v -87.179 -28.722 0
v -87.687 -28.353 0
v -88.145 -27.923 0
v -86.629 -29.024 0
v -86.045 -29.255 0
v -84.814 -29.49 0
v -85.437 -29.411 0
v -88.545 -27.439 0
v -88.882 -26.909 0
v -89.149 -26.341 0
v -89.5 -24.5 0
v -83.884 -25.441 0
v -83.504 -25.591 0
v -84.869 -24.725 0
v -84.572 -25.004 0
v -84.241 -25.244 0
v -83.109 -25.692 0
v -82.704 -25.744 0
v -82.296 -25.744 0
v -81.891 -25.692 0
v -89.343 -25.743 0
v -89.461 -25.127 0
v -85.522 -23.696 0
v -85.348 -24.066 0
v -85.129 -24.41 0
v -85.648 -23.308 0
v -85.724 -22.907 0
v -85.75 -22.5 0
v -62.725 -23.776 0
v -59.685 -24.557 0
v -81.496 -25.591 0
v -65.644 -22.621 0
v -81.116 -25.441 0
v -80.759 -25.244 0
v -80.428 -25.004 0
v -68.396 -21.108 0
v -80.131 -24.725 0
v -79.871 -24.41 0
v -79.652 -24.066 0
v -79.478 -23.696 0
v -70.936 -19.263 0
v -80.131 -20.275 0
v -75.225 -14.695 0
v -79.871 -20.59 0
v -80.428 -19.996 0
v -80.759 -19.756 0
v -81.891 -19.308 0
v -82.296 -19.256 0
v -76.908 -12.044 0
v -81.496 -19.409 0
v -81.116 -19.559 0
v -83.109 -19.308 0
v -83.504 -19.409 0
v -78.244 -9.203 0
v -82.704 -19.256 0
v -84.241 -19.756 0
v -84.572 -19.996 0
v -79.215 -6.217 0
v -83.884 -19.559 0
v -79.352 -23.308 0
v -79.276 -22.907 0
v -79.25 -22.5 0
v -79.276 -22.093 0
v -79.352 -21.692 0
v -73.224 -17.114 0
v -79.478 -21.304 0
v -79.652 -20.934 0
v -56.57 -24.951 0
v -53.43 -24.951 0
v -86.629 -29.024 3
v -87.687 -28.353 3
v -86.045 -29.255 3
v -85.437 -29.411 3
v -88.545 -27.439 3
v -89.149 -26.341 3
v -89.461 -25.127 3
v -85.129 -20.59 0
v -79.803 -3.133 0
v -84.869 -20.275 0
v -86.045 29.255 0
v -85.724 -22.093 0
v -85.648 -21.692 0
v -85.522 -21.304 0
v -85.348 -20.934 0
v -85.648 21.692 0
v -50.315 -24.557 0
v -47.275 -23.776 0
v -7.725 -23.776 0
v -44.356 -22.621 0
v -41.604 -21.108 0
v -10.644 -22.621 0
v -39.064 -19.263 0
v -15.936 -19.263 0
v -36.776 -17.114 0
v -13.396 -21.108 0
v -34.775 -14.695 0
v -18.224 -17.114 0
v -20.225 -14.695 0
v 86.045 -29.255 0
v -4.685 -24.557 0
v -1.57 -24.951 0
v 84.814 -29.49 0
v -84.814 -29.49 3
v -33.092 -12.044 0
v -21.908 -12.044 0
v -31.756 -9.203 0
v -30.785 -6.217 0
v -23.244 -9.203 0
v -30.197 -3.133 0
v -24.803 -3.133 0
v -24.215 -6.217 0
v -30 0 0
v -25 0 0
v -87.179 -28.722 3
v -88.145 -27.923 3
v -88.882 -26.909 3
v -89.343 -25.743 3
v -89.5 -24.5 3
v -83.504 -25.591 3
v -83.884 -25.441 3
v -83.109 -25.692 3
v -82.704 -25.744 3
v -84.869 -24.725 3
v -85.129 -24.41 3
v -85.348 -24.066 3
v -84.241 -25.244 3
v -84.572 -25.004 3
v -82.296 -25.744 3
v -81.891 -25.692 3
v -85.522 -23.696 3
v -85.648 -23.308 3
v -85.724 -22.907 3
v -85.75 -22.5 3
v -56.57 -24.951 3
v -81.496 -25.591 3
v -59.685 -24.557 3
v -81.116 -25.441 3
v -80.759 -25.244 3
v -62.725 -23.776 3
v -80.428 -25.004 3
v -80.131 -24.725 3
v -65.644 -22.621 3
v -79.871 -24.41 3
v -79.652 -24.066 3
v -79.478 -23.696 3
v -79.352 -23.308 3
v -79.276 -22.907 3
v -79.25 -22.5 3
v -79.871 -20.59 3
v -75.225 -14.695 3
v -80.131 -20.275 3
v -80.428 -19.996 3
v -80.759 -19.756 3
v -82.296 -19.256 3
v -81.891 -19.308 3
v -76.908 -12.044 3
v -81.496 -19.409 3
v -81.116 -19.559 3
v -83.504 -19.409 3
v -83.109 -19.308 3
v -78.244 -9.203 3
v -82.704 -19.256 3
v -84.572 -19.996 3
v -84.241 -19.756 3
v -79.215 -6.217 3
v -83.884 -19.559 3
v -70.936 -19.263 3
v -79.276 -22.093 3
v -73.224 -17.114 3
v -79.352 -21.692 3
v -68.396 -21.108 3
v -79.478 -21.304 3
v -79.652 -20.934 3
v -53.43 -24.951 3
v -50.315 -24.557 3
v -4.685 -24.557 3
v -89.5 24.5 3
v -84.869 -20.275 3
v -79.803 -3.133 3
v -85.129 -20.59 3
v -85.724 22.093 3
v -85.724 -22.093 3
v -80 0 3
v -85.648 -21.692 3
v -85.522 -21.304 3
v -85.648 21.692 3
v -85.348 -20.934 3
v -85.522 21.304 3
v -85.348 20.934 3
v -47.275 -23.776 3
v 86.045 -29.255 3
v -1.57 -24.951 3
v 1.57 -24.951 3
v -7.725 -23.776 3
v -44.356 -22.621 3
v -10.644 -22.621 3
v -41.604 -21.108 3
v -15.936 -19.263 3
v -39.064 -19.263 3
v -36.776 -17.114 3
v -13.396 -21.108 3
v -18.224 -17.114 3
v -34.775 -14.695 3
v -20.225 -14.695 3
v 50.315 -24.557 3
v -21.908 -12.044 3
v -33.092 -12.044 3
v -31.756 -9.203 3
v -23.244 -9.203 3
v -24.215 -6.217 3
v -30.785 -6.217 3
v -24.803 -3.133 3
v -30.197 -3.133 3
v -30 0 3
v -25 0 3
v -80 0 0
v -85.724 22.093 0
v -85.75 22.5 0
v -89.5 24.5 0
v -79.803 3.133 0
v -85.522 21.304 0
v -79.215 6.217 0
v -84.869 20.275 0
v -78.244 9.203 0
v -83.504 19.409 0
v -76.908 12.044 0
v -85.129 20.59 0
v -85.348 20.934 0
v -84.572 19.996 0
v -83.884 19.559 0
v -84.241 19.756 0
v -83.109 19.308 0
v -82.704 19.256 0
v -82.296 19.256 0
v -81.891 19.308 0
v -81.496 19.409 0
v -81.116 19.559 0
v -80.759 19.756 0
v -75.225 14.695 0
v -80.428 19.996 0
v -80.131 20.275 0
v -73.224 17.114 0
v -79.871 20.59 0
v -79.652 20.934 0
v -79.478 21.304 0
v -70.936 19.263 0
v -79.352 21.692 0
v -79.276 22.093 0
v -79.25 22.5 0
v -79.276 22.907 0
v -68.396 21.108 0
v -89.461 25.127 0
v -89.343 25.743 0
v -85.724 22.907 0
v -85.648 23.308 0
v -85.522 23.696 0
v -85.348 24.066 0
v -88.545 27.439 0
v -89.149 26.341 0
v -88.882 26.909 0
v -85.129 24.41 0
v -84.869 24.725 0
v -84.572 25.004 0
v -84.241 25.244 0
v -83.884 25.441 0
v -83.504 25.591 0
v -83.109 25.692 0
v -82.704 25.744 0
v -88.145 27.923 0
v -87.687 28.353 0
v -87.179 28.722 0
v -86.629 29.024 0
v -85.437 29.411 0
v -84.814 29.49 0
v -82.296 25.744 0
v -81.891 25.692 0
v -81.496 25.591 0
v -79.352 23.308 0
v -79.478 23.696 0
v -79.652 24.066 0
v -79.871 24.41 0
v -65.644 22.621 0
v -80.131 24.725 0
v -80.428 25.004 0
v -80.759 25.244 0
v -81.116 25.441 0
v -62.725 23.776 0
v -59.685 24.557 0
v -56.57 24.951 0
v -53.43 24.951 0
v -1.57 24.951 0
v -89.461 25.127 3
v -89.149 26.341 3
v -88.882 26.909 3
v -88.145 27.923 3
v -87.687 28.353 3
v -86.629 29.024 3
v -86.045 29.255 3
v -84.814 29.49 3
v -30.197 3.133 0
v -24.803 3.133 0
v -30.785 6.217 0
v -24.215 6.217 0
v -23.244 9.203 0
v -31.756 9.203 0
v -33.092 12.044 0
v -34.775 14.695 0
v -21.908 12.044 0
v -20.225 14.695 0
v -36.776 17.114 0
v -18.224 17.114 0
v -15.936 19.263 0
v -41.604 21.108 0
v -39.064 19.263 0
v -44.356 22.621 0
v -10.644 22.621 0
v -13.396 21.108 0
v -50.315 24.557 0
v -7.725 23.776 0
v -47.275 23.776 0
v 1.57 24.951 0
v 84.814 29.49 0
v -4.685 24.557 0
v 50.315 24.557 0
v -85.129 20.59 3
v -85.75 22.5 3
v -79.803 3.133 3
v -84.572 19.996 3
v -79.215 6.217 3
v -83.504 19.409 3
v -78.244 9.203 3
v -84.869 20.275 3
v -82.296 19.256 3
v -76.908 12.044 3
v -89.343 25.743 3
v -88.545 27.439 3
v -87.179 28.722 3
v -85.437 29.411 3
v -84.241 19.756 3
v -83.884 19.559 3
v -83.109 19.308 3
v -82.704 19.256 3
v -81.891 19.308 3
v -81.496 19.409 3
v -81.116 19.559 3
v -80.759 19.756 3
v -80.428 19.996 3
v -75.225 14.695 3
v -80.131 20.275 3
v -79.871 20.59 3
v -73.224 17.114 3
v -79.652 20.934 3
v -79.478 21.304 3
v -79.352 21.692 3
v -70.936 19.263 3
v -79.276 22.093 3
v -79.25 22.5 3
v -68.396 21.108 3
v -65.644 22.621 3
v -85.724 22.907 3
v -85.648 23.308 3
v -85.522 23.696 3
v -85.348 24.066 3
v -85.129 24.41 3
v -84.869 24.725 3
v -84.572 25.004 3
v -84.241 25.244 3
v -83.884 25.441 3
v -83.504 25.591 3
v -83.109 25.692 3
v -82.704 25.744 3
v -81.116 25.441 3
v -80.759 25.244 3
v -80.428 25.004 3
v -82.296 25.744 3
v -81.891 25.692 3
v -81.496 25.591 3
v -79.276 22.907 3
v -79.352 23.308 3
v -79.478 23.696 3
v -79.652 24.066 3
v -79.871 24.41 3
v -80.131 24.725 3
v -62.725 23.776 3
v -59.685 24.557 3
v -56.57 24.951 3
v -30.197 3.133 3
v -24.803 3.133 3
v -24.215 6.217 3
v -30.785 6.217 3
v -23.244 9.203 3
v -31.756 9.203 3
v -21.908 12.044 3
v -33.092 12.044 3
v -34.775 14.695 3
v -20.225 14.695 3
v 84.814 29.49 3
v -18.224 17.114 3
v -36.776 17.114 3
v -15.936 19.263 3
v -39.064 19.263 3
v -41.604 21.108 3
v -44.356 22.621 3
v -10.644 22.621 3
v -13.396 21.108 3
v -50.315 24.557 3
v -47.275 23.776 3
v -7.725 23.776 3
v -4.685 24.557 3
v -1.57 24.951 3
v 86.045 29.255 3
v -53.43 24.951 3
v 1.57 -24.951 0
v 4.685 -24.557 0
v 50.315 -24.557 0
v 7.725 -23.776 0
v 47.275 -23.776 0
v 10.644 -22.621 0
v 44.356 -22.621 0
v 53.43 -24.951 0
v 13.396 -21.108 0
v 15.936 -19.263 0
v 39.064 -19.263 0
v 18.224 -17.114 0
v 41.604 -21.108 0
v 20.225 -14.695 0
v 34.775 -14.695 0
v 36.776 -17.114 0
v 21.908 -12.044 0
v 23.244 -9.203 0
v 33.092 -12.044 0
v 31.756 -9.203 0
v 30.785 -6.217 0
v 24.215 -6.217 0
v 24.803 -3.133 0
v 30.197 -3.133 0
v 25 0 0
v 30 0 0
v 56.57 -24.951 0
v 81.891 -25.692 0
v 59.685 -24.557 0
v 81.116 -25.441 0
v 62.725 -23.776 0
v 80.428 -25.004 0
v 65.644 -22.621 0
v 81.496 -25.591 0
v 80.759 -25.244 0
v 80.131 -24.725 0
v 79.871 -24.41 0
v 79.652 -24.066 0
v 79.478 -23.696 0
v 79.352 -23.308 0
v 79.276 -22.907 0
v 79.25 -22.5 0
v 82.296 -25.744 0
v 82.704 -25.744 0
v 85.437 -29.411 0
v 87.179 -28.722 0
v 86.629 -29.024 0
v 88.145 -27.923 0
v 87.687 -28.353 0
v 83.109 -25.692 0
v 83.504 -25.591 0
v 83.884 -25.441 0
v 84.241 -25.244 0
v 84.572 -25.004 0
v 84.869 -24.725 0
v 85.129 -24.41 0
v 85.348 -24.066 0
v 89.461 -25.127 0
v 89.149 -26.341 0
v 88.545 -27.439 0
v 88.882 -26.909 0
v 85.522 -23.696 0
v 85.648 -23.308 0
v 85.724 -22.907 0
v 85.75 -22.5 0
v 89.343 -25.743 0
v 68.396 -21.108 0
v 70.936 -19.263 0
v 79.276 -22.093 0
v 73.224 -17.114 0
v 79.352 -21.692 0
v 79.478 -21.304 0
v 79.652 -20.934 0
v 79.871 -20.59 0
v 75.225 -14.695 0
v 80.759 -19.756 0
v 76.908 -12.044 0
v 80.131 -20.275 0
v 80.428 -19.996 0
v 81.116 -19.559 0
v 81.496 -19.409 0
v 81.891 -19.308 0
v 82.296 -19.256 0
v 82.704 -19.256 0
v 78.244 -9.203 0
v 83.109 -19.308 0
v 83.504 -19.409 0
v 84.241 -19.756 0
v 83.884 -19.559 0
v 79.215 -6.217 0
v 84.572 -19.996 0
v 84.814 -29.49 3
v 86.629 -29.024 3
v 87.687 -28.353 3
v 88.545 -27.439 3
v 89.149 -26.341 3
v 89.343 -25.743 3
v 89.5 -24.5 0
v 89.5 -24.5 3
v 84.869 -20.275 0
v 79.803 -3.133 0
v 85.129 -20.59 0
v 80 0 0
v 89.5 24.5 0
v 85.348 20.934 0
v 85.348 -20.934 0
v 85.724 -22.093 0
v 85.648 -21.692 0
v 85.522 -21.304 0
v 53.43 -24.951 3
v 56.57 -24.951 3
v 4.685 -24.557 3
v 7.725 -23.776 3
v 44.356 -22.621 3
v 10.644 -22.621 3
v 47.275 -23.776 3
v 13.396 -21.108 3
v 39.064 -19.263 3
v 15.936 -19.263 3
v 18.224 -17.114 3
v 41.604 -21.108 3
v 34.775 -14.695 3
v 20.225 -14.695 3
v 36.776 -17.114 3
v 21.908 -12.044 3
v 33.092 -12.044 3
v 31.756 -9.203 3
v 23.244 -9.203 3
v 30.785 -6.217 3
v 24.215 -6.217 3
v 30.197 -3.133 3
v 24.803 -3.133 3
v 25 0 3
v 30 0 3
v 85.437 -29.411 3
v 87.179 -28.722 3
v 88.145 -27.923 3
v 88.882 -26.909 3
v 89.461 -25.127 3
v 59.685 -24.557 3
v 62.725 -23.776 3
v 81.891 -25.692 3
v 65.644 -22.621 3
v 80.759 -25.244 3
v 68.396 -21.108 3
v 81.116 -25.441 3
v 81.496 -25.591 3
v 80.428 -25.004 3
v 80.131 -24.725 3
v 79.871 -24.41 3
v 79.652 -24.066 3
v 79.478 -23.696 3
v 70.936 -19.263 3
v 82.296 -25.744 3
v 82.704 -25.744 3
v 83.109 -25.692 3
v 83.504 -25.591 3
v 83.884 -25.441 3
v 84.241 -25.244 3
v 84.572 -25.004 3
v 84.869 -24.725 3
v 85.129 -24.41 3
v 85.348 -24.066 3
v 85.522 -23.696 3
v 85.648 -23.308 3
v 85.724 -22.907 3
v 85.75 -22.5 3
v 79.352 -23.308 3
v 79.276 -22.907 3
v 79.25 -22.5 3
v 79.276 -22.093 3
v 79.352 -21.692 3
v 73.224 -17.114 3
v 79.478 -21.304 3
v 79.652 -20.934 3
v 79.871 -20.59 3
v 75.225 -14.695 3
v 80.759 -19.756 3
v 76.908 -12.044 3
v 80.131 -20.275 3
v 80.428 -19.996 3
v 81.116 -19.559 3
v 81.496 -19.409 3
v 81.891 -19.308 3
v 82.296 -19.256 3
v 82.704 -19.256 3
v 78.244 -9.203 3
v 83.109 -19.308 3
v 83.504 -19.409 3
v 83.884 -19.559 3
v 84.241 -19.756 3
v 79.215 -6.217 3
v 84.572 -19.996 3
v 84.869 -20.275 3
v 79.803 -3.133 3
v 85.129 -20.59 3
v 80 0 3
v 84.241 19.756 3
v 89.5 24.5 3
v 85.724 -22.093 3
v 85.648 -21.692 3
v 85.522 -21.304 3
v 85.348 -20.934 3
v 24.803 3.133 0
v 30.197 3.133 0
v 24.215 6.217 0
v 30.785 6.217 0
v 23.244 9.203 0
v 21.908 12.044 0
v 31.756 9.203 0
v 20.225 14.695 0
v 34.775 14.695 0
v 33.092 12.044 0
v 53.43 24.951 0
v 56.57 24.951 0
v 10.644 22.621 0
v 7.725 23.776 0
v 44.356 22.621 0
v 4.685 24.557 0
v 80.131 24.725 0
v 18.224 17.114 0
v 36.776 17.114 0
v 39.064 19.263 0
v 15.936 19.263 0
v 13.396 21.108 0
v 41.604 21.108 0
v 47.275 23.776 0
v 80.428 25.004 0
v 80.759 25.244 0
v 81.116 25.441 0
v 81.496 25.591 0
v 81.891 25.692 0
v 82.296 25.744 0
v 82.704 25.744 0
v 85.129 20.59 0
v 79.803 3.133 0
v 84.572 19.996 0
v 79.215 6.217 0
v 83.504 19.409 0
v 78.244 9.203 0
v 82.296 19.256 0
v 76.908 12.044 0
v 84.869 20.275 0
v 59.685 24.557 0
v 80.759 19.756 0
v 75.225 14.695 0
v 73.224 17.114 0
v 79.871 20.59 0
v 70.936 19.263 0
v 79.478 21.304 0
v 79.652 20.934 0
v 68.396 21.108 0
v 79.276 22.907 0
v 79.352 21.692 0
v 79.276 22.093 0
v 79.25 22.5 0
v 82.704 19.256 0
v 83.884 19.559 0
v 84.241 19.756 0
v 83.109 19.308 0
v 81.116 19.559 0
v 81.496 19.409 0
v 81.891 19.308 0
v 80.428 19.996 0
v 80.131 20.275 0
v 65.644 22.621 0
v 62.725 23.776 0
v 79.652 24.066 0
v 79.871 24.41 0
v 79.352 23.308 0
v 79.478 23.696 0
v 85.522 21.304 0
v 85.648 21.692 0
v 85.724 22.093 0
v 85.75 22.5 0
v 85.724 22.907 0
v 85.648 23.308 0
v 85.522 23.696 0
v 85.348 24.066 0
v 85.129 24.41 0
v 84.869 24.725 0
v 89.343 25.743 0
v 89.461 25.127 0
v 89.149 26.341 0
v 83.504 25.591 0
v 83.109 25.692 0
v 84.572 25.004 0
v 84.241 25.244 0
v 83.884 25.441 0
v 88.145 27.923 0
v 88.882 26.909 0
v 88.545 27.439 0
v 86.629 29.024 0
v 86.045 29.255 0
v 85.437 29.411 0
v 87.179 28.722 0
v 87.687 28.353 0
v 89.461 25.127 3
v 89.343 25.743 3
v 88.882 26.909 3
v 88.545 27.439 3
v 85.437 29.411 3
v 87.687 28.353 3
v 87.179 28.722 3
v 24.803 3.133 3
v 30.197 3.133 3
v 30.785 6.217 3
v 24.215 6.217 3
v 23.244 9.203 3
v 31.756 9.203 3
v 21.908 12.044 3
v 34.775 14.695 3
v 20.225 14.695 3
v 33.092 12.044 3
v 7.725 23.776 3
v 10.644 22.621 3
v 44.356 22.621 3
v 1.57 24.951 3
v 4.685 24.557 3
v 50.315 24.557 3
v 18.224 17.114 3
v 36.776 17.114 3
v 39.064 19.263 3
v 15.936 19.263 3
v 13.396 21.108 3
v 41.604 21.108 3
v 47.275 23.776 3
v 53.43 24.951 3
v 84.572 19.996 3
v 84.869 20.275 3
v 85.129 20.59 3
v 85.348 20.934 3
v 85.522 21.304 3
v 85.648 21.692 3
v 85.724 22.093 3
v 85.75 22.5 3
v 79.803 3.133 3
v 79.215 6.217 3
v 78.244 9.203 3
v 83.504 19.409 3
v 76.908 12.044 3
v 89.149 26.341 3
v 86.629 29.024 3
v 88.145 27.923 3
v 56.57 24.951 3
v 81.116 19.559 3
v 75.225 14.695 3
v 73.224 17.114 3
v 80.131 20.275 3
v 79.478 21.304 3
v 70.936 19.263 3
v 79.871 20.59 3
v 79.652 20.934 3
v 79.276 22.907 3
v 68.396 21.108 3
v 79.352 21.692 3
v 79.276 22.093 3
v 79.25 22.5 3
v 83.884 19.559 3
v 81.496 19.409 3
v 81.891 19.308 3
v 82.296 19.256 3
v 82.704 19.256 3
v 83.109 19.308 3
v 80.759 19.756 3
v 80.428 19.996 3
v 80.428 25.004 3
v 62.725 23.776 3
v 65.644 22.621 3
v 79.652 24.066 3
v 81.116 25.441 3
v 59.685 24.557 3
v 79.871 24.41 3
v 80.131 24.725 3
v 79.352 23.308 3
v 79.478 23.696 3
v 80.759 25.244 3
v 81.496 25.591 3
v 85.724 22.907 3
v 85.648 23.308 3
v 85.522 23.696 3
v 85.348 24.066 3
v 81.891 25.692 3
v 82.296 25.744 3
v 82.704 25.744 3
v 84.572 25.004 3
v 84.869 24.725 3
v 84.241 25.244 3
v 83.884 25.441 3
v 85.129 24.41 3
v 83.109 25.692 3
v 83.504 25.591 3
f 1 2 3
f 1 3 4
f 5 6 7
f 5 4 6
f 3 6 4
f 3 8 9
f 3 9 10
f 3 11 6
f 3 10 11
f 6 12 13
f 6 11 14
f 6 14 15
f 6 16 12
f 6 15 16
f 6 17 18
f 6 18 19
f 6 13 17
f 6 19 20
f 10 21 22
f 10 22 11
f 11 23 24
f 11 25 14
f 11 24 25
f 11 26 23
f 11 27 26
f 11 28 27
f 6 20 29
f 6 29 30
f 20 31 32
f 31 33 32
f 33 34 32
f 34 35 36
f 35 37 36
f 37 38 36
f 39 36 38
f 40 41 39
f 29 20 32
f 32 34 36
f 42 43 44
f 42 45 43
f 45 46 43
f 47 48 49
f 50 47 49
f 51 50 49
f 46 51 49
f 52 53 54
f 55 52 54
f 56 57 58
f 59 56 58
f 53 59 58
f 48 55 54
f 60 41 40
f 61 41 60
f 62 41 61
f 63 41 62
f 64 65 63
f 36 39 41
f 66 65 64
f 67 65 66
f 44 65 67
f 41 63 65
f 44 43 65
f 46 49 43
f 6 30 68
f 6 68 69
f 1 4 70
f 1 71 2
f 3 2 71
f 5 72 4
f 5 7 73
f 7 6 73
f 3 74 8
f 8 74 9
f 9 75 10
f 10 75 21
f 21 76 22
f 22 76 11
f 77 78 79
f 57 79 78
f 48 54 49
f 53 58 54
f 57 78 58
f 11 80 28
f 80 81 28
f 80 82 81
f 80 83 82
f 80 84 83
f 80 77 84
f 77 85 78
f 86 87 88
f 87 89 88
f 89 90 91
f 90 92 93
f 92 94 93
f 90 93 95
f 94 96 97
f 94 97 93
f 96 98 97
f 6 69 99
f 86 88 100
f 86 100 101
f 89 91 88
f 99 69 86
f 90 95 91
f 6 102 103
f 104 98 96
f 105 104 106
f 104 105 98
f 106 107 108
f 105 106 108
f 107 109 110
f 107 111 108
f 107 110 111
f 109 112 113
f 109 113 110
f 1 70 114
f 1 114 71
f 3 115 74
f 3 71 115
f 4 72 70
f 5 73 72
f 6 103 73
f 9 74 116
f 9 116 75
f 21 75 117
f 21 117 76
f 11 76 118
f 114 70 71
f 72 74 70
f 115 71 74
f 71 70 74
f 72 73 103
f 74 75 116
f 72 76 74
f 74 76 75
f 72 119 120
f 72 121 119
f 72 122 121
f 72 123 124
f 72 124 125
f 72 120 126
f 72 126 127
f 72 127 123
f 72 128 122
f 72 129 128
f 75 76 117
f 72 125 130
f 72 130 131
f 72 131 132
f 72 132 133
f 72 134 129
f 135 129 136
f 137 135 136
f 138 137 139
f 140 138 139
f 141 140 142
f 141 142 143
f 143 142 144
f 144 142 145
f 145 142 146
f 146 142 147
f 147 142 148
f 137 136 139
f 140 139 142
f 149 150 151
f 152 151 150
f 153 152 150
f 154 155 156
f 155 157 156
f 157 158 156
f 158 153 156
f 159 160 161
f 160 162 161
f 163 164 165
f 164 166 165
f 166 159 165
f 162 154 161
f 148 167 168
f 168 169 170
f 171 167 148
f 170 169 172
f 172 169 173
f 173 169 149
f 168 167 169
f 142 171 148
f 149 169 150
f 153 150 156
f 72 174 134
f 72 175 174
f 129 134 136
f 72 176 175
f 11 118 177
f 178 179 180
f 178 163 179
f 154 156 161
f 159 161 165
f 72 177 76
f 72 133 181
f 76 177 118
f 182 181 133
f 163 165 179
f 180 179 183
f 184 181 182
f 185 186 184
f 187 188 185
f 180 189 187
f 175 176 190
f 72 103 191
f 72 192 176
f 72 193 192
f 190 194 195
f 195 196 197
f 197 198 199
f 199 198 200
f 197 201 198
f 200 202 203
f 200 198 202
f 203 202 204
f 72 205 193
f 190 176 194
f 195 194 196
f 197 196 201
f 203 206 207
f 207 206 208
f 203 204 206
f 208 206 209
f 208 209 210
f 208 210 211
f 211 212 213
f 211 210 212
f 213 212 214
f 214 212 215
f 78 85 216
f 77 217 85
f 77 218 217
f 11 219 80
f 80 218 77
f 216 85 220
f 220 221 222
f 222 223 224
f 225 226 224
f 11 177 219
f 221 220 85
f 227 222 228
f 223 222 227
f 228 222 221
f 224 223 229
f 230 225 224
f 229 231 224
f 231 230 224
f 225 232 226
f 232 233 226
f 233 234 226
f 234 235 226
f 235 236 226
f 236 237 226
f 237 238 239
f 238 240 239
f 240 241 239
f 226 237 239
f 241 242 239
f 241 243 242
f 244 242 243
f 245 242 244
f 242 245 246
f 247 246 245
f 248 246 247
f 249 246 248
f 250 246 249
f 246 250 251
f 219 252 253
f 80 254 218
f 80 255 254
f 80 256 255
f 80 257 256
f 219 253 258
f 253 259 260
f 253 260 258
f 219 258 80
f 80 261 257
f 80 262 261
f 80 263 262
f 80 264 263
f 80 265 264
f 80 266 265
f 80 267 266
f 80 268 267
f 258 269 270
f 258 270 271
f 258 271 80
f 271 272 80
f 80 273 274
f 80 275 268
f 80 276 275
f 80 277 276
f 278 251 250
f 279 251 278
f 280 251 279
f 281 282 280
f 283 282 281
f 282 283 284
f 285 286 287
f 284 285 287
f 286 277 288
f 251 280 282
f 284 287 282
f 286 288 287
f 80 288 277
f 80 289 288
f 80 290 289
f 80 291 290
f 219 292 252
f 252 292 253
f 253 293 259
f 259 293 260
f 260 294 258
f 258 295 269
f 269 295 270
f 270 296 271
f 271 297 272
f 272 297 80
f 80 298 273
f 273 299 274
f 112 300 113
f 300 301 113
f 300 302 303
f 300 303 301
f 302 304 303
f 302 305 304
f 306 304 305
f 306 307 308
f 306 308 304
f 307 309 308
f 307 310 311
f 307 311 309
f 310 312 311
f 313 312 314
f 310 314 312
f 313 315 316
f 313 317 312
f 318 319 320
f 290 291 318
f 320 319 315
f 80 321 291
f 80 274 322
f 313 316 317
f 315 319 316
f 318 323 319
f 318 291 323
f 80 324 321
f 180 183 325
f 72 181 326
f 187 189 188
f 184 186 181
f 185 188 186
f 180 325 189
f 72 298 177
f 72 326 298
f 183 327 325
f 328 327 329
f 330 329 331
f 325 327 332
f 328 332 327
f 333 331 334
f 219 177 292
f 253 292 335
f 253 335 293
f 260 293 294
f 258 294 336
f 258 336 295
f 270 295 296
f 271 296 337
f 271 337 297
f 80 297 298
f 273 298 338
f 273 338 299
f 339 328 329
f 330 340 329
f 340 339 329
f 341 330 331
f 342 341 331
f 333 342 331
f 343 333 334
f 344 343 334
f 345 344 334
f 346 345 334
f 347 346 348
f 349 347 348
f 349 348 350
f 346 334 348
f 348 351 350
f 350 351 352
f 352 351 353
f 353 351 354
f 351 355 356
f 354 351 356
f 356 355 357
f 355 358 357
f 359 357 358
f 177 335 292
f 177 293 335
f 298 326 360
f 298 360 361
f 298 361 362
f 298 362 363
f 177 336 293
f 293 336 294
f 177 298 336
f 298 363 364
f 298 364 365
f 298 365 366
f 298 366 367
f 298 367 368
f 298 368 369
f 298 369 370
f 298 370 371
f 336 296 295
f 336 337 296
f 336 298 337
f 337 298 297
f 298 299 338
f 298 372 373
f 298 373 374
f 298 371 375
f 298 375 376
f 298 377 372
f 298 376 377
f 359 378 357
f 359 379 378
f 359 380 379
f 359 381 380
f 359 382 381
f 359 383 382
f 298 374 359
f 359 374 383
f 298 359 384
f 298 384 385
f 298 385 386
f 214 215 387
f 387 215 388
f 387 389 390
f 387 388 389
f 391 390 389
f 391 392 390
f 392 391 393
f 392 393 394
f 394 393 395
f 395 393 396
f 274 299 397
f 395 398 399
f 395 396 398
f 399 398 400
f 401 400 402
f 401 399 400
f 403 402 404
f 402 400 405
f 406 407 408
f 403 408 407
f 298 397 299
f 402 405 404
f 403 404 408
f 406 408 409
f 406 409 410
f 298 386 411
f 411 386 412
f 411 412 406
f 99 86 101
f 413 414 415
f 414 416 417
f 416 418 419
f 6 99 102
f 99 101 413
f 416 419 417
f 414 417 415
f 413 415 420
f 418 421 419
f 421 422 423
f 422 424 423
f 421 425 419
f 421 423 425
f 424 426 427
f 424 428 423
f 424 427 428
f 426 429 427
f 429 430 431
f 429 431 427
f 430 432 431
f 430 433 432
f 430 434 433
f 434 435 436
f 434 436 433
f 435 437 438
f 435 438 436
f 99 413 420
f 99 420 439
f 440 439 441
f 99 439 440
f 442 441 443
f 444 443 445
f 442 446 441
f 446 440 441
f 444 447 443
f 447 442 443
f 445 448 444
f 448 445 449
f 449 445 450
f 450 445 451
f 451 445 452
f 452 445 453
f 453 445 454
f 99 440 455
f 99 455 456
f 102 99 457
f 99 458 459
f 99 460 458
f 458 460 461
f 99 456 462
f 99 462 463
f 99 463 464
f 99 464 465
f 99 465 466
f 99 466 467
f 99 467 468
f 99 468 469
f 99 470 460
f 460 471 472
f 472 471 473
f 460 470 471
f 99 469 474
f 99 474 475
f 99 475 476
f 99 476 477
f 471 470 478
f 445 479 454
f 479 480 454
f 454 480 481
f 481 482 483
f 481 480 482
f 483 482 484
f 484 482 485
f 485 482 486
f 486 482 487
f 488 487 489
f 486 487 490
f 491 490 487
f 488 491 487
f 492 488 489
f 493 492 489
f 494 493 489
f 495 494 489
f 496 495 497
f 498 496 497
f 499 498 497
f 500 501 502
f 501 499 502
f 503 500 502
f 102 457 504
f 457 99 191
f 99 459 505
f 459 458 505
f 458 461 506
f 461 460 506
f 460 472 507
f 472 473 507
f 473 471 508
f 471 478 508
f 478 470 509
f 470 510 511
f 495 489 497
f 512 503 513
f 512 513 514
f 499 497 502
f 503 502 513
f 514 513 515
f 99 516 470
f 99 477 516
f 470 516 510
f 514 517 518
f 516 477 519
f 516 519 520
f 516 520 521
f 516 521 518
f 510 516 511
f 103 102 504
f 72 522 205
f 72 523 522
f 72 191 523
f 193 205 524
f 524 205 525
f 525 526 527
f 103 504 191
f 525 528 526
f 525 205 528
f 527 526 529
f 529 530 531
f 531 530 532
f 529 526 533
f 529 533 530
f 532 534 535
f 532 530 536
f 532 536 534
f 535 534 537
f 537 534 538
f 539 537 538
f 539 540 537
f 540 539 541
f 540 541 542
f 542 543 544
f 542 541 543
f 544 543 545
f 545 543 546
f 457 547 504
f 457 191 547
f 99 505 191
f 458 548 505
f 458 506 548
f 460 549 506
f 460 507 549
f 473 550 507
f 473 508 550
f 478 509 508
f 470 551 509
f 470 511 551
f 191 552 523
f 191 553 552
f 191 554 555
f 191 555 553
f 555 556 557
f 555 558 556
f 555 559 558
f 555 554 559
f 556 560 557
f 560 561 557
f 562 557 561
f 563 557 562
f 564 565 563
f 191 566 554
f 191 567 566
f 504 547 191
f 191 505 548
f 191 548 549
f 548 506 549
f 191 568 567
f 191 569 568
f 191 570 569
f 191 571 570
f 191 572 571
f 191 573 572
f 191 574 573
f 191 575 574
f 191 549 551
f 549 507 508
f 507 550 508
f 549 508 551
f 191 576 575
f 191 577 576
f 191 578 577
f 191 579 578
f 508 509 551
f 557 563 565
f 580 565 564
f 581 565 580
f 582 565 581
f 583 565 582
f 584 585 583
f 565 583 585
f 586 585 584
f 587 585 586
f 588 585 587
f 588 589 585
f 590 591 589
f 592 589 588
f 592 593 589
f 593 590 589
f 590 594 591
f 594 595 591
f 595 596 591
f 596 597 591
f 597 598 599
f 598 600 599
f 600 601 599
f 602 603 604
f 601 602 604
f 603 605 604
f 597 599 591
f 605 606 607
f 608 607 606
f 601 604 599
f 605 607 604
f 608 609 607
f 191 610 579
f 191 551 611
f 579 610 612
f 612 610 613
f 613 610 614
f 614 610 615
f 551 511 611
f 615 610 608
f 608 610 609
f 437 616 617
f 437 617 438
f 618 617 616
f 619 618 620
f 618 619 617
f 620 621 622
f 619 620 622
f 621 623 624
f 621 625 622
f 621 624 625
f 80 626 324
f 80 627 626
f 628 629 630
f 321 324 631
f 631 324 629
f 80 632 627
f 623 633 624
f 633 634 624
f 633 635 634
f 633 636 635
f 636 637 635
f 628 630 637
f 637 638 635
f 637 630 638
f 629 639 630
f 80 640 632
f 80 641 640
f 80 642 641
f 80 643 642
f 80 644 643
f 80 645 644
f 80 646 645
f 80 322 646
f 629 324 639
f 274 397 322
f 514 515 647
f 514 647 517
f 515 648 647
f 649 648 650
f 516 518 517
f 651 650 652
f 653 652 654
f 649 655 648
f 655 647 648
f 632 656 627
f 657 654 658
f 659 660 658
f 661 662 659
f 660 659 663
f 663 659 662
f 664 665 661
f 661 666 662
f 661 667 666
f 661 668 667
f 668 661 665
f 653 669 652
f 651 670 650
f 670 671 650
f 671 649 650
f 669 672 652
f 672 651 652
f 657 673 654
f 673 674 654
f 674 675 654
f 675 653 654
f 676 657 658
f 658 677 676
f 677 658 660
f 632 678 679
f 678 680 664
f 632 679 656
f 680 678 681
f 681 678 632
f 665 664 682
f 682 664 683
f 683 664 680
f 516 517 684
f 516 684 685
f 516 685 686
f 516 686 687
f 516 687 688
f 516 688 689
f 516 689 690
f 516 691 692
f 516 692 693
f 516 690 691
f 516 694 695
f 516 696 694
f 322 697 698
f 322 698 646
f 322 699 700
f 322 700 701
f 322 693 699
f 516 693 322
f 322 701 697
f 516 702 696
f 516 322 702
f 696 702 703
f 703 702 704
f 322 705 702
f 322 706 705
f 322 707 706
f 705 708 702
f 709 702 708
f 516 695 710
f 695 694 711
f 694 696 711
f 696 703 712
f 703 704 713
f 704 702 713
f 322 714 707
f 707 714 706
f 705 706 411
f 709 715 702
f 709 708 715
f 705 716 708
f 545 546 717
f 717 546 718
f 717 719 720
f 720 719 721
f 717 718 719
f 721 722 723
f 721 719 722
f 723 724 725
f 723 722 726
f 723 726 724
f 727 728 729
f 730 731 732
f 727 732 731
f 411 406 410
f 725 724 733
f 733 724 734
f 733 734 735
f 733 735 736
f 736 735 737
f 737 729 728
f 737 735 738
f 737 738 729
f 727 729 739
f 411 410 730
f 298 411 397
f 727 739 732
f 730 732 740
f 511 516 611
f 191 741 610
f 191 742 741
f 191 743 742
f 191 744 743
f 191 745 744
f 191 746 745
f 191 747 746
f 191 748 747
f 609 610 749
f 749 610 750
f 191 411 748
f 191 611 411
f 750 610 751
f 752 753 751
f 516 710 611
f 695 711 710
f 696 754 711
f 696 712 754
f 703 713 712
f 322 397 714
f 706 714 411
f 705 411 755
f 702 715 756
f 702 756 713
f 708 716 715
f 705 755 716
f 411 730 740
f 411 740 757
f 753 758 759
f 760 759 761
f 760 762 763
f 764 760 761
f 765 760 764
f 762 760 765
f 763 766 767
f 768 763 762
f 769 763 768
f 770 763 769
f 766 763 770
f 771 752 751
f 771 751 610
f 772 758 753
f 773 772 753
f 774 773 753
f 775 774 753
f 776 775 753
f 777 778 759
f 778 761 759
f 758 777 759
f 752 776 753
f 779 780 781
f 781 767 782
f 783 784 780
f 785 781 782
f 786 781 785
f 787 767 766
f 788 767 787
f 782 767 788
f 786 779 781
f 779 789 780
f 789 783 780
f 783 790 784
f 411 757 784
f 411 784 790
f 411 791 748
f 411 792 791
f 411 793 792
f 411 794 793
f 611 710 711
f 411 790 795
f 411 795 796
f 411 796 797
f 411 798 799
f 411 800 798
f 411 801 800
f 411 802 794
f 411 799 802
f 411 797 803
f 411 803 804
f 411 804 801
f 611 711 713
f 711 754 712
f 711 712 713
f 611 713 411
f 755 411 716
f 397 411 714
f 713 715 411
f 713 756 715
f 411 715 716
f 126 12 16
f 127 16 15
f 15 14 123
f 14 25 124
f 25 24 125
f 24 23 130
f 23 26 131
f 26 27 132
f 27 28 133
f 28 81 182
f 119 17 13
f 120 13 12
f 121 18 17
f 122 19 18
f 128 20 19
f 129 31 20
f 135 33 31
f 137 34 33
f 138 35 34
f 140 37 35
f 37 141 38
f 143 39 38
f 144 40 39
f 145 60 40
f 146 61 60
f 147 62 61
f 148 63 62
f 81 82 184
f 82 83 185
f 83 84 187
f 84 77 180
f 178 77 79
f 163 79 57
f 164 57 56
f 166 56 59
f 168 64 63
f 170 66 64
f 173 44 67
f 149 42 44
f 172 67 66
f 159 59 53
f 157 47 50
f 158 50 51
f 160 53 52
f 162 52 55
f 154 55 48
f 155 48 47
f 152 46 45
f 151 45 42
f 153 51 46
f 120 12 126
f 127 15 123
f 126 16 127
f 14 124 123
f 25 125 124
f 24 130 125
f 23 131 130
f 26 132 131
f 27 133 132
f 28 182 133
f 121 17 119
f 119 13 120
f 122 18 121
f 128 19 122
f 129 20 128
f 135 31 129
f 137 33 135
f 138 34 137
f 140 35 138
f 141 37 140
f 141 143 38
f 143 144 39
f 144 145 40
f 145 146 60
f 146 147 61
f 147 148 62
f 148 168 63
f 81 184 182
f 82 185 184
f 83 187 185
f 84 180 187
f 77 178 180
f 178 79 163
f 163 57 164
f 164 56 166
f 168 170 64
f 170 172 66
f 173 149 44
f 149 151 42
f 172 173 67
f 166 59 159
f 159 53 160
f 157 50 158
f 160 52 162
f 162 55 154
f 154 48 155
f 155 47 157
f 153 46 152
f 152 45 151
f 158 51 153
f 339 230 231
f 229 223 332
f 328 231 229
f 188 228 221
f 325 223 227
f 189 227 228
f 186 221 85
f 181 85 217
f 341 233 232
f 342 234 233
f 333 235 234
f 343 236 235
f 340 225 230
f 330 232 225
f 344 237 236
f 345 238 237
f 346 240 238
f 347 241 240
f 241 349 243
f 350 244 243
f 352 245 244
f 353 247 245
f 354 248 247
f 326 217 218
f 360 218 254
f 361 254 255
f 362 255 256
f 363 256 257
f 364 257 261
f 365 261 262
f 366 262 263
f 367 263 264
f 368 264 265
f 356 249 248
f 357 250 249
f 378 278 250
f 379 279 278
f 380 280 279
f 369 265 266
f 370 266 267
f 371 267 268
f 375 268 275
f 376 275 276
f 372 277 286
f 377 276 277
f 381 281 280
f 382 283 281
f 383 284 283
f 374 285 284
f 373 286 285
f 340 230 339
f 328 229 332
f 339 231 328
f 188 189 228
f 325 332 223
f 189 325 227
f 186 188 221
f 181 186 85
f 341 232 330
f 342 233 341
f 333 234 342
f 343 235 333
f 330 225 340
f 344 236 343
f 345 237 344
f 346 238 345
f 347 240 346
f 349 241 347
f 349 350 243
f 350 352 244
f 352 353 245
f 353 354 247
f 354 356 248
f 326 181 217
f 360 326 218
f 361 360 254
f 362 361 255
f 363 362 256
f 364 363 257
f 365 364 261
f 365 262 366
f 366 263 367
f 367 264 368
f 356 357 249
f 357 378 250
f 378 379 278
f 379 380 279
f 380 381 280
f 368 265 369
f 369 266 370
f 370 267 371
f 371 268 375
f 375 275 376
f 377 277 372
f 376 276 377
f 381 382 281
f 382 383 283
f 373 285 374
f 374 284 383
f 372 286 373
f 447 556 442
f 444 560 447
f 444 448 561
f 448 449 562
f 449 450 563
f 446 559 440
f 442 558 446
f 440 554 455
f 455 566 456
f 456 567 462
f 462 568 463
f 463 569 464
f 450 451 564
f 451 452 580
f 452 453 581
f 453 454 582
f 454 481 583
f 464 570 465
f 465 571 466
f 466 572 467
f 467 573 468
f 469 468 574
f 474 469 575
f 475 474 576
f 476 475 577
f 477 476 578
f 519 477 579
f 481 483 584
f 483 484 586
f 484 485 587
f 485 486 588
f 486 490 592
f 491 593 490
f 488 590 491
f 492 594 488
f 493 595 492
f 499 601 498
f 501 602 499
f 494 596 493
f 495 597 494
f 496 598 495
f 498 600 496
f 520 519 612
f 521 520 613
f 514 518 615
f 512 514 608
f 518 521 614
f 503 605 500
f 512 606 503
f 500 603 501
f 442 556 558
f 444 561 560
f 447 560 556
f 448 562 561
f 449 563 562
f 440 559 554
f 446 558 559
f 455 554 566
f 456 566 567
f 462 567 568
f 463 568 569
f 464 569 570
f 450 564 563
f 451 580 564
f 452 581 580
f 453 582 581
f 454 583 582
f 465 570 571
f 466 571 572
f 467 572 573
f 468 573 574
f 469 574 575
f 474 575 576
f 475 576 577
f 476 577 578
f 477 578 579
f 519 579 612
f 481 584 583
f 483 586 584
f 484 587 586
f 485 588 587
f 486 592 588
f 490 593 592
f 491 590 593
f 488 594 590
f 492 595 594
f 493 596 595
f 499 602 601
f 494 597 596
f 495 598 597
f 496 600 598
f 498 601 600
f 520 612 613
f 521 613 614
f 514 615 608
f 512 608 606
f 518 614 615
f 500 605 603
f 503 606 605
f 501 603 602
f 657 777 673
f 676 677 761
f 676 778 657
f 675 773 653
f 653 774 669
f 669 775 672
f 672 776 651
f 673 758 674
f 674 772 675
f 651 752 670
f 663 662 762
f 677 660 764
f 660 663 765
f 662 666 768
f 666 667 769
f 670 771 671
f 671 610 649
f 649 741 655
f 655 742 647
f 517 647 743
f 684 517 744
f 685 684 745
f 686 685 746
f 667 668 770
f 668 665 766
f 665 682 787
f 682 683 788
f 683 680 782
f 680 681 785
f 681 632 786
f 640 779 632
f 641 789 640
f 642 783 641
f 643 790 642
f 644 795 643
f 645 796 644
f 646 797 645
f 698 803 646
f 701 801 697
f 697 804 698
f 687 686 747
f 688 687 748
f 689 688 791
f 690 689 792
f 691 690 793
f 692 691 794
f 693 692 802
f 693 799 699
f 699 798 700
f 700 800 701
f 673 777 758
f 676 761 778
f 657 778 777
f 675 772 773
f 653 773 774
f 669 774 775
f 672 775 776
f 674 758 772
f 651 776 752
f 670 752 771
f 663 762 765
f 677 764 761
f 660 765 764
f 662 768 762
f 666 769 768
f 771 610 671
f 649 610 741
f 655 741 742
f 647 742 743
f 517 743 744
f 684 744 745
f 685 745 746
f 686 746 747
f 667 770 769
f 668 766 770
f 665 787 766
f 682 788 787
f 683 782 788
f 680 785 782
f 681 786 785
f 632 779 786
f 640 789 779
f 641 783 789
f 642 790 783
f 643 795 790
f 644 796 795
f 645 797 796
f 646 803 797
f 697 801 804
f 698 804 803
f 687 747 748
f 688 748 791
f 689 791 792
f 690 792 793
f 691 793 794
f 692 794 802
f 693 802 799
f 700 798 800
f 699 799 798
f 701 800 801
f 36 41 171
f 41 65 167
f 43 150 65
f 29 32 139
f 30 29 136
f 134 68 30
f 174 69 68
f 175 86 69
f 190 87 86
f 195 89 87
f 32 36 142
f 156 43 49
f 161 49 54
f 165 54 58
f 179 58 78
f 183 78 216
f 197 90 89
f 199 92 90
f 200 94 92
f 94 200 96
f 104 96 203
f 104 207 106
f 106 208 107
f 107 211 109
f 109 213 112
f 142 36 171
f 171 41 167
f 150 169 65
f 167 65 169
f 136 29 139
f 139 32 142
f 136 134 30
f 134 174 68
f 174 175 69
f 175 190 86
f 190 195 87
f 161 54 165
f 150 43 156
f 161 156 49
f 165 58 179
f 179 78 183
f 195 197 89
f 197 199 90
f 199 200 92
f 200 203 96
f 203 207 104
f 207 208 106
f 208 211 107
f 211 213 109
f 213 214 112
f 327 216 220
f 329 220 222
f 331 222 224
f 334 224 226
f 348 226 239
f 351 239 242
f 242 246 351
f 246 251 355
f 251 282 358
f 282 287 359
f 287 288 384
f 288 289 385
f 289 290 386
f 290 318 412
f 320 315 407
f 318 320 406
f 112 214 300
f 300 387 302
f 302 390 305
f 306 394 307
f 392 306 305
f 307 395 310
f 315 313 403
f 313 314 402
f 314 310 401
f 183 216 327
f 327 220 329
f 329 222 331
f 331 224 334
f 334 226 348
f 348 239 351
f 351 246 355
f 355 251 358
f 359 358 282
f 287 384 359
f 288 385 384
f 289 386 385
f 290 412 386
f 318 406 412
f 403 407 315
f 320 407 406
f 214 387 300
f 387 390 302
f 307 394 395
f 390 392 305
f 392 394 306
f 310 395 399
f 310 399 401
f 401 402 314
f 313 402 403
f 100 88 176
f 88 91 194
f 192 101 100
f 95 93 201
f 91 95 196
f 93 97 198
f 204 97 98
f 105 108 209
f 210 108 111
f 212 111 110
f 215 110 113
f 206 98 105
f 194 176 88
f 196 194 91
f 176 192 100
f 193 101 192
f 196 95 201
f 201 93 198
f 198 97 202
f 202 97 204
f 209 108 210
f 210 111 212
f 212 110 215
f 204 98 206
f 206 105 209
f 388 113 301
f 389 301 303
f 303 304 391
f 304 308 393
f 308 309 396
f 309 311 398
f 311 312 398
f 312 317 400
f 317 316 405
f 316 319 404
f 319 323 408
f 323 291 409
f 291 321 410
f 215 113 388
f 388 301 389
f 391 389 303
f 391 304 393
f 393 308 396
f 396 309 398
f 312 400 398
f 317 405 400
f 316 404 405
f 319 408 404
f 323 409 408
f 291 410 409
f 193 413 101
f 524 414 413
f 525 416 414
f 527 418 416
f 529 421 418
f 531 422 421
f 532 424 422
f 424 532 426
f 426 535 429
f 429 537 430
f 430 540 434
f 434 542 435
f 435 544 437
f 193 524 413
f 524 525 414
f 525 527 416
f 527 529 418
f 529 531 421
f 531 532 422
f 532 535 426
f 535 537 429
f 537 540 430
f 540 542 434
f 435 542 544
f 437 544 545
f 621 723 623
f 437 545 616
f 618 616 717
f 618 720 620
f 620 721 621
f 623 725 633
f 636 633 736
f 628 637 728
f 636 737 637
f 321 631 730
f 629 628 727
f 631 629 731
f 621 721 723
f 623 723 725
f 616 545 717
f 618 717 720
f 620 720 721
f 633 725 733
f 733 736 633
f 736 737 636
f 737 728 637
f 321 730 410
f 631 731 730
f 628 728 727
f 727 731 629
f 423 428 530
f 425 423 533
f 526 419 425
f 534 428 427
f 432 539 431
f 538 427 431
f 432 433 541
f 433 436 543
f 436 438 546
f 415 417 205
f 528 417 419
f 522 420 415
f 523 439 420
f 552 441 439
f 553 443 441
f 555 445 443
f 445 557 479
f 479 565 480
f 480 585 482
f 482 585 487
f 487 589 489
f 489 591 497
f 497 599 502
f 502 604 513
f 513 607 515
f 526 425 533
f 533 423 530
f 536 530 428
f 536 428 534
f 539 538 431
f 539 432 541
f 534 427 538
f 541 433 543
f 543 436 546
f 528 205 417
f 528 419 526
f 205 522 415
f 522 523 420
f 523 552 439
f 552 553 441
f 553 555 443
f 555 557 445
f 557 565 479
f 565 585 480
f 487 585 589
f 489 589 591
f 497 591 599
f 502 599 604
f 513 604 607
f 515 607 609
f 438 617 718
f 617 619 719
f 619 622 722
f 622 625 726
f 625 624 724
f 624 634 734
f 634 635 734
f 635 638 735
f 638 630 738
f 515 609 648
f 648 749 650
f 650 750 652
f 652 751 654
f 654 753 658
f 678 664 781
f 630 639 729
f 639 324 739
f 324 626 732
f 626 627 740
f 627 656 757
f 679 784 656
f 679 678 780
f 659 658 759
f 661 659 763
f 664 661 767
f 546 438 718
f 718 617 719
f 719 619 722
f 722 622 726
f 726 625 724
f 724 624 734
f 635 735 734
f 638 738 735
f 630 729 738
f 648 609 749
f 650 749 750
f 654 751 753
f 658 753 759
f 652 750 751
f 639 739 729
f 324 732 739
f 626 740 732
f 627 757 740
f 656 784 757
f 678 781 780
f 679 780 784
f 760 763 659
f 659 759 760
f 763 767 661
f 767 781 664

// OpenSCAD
$fn = 50;

difference() {
	union() {
		hull() {
			translate(v = [-84.5, 24.5, 0]) {
				cylinder(h = 3, r = 5);
			}
			translate(v = [84.5, 24.5, 0]) {
				cylinder(h = 3, r = 5);
			}
			translate(v = [-84.5, -24.5, 0]) {
				cylinder(h = 3, r = 5);
			}
			translate(v = [84.5, -24.5, 0]) {
				cylinder(h = 3, r = 5);
			}
		}
	}
	union() {
		translate(v = [-82.5, -22.5, -100.0]) {
			cylinder(h = 200, r = 3.25);
		}
		translate(v = [-82.5, 22.5, -100.0]) {
			cylinder(h = 200, r = 3.25);
		}
		translate(v = [82.5, -22.5, -100.0]) {
			cylinder(h = 200, r = 3.25);
		}
		translate(v = [82.5, 22.5, -100.0]) {
			cylinder(h = 200, r = 3.25);
		}
		translate(v = [-82.5, -22.5, -100.0]) {
			cylinder(h = 200, r = 1.8);
		}
		translate(v = [-82.5, 22.5, -100.0]) {
			cylinder(h = 200, r = 1.8);
		}
		translate(v = [82.5, -22.5, -100.0]) {
			cylinder(h = 200, r = 1.8);
		}
		translate(v = [82.5, 22.5, -100.0]) {
			cylinder(h = 200, r = 1.8);
		}
		translate(v = [-55.0, 0, 0.0]) {
			cylinder(h = 3, r = 25.0);
		}
		cylinder(h = 3, r = 25.0);
		translate(v = [55.0, 0, 0.0]) {
			cylinder(h = 3, r = 25.0);
		}
	}
}
